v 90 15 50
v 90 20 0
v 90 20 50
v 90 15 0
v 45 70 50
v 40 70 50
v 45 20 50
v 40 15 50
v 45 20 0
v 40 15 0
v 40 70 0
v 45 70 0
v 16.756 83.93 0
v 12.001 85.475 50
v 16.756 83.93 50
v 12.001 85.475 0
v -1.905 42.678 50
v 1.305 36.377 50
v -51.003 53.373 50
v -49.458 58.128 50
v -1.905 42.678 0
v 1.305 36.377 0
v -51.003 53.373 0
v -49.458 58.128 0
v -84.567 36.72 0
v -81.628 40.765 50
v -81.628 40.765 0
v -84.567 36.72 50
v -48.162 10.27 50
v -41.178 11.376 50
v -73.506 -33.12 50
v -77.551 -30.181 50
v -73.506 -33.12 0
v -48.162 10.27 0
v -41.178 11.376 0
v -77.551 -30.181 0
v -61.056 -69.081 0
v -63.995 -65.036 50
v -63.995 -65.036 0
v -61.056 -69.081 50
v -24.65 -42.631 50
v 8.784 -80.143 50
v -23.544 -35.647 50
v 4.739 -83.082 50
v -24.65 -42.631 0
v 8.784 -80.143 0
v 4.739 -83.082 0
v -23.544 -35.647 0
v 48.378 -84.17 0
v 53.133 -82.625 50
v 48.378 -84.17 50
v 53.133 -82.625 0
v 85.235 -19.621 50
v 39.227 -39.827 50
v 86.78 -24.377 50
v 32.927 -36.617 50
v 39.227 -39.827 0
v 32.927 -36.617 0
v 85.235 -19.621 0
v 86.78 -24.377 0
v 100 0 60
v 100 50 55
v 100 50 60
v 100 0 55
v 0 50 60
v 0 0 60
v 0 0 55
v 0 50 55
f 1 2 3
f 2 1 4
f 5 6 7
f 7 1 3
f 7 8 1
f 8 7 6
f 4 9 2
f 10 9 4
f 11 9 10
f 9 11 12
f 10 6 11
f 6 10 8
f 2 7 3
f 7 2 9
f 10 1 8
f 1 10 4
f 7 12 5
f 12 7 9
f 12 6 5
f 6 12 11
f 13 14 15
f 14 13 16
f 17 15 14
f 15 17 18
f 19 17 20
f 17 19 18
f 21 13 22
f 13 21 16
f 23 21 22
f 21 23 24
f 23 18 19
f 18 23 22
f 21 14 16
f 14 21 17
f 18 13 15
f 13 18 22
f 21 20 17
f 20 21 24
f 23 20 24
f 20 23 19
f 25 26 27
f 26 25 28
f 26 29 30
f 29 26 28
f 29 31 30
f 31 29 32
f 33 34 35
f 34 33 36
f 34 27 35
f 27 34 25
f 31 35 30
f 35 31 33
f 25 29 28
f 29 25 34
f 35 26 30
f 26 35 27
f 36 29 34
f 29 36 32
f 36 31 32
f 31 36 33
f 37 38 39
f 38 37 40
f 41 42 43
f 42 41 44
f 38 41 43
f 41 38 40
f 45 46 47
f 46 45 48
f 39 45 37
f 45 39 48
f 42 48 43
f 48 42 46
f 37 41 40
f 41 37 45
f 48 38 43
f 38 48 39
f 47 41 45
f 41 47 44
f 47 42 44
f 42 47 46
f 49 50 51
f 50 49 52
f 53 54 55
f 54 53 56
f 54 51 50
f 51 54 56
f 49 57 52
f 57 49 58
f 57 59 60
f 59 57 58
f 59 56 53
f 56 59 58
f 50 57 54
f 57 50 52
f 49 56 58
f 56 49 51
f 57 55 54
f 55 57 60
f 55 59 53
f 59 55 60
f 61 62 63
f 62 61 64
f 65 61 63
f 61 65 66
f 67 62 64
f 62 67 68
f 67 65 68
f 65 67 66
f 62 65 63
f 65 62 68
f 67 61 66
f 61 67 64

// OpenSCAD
// Parameters
plate_length = 100; // Length of the flat plate
plate_width = 50;   // Width of the flat plate
plate_thickness = 5; // Thickness of the flat plate

bracket_length = 50; // Length of one side of the L-shaped bracket
bracket_width = 50;  // Width of the bracket
bracket_thickness = 5; // Thickness of the bracket
bracket_offset = 10; // Offset from the edge of the flat plate

// Flat Plate
module flat_plate() {
    translate([0, 0, 0]) // Ensure the flat plate is perfectly horizontal
        cube([plate_length, plate_width, plate_thickness]);
}

// L-Shaped Bracket
module l_shaped_bracket() {
    union() {
        cube([bracket_length, bracket_thickness, bracket_width]);
        translate([0, bracket_thickness, 0])
            cube([bracket_thickness, bracket_width, bracket_width]);
    }
}

// Assembly
module assembly() {
    // Layer 1: Flat Plate
    translate([0, 0, bracket_width + bracket_thickness])
        flat_plate();

    // Layer 2: L-Shaped Brackets
    // Adjusting each bracket to match the original model
    // Bracket 1
    rotate([0, 0, 0]) // Correct rotation
        translate([plate_length / 2 - bracket_offset, plate_width / 2 - bracket_offset, 0])
            l_shaped_bracket();

    // Bracket 2
    rotate([0, 0, 72]) // Correct rotation
        translate([plate_length / 2 - bracket_offset - 5, plate_width / 2 - bracket_offset - 5, 0]) // Adjusted position
            l_shaped_bracket();

    // Bracket 3
    rotate([0, 0, 144]) // Correct rotation
        translate([plate_length / 2 - bracket_offset, plate_width / 2 - bracket_offset, 0]) // Adjusted to stand upright
            l_shaped_bracket();

    // Bracket 4
    rotate([0, 0, 216]) // Correct rotation
        translate([plate_length / 2 - bracket_offset, plate_width / 2 - bracket_offset, 0]) // Adjusted angle
            l_shaped_bracket();

    // Bracket 5
    rotate([0, 0, 288]) // Correct rotation
        translate([plate_length / 2 - bracket_offset + 5, plate_width / 2 - bracket_offset + 5, 0]) // Adjusted position
            l_shaped_bracket();
}

// Render the assembly
assembly();
